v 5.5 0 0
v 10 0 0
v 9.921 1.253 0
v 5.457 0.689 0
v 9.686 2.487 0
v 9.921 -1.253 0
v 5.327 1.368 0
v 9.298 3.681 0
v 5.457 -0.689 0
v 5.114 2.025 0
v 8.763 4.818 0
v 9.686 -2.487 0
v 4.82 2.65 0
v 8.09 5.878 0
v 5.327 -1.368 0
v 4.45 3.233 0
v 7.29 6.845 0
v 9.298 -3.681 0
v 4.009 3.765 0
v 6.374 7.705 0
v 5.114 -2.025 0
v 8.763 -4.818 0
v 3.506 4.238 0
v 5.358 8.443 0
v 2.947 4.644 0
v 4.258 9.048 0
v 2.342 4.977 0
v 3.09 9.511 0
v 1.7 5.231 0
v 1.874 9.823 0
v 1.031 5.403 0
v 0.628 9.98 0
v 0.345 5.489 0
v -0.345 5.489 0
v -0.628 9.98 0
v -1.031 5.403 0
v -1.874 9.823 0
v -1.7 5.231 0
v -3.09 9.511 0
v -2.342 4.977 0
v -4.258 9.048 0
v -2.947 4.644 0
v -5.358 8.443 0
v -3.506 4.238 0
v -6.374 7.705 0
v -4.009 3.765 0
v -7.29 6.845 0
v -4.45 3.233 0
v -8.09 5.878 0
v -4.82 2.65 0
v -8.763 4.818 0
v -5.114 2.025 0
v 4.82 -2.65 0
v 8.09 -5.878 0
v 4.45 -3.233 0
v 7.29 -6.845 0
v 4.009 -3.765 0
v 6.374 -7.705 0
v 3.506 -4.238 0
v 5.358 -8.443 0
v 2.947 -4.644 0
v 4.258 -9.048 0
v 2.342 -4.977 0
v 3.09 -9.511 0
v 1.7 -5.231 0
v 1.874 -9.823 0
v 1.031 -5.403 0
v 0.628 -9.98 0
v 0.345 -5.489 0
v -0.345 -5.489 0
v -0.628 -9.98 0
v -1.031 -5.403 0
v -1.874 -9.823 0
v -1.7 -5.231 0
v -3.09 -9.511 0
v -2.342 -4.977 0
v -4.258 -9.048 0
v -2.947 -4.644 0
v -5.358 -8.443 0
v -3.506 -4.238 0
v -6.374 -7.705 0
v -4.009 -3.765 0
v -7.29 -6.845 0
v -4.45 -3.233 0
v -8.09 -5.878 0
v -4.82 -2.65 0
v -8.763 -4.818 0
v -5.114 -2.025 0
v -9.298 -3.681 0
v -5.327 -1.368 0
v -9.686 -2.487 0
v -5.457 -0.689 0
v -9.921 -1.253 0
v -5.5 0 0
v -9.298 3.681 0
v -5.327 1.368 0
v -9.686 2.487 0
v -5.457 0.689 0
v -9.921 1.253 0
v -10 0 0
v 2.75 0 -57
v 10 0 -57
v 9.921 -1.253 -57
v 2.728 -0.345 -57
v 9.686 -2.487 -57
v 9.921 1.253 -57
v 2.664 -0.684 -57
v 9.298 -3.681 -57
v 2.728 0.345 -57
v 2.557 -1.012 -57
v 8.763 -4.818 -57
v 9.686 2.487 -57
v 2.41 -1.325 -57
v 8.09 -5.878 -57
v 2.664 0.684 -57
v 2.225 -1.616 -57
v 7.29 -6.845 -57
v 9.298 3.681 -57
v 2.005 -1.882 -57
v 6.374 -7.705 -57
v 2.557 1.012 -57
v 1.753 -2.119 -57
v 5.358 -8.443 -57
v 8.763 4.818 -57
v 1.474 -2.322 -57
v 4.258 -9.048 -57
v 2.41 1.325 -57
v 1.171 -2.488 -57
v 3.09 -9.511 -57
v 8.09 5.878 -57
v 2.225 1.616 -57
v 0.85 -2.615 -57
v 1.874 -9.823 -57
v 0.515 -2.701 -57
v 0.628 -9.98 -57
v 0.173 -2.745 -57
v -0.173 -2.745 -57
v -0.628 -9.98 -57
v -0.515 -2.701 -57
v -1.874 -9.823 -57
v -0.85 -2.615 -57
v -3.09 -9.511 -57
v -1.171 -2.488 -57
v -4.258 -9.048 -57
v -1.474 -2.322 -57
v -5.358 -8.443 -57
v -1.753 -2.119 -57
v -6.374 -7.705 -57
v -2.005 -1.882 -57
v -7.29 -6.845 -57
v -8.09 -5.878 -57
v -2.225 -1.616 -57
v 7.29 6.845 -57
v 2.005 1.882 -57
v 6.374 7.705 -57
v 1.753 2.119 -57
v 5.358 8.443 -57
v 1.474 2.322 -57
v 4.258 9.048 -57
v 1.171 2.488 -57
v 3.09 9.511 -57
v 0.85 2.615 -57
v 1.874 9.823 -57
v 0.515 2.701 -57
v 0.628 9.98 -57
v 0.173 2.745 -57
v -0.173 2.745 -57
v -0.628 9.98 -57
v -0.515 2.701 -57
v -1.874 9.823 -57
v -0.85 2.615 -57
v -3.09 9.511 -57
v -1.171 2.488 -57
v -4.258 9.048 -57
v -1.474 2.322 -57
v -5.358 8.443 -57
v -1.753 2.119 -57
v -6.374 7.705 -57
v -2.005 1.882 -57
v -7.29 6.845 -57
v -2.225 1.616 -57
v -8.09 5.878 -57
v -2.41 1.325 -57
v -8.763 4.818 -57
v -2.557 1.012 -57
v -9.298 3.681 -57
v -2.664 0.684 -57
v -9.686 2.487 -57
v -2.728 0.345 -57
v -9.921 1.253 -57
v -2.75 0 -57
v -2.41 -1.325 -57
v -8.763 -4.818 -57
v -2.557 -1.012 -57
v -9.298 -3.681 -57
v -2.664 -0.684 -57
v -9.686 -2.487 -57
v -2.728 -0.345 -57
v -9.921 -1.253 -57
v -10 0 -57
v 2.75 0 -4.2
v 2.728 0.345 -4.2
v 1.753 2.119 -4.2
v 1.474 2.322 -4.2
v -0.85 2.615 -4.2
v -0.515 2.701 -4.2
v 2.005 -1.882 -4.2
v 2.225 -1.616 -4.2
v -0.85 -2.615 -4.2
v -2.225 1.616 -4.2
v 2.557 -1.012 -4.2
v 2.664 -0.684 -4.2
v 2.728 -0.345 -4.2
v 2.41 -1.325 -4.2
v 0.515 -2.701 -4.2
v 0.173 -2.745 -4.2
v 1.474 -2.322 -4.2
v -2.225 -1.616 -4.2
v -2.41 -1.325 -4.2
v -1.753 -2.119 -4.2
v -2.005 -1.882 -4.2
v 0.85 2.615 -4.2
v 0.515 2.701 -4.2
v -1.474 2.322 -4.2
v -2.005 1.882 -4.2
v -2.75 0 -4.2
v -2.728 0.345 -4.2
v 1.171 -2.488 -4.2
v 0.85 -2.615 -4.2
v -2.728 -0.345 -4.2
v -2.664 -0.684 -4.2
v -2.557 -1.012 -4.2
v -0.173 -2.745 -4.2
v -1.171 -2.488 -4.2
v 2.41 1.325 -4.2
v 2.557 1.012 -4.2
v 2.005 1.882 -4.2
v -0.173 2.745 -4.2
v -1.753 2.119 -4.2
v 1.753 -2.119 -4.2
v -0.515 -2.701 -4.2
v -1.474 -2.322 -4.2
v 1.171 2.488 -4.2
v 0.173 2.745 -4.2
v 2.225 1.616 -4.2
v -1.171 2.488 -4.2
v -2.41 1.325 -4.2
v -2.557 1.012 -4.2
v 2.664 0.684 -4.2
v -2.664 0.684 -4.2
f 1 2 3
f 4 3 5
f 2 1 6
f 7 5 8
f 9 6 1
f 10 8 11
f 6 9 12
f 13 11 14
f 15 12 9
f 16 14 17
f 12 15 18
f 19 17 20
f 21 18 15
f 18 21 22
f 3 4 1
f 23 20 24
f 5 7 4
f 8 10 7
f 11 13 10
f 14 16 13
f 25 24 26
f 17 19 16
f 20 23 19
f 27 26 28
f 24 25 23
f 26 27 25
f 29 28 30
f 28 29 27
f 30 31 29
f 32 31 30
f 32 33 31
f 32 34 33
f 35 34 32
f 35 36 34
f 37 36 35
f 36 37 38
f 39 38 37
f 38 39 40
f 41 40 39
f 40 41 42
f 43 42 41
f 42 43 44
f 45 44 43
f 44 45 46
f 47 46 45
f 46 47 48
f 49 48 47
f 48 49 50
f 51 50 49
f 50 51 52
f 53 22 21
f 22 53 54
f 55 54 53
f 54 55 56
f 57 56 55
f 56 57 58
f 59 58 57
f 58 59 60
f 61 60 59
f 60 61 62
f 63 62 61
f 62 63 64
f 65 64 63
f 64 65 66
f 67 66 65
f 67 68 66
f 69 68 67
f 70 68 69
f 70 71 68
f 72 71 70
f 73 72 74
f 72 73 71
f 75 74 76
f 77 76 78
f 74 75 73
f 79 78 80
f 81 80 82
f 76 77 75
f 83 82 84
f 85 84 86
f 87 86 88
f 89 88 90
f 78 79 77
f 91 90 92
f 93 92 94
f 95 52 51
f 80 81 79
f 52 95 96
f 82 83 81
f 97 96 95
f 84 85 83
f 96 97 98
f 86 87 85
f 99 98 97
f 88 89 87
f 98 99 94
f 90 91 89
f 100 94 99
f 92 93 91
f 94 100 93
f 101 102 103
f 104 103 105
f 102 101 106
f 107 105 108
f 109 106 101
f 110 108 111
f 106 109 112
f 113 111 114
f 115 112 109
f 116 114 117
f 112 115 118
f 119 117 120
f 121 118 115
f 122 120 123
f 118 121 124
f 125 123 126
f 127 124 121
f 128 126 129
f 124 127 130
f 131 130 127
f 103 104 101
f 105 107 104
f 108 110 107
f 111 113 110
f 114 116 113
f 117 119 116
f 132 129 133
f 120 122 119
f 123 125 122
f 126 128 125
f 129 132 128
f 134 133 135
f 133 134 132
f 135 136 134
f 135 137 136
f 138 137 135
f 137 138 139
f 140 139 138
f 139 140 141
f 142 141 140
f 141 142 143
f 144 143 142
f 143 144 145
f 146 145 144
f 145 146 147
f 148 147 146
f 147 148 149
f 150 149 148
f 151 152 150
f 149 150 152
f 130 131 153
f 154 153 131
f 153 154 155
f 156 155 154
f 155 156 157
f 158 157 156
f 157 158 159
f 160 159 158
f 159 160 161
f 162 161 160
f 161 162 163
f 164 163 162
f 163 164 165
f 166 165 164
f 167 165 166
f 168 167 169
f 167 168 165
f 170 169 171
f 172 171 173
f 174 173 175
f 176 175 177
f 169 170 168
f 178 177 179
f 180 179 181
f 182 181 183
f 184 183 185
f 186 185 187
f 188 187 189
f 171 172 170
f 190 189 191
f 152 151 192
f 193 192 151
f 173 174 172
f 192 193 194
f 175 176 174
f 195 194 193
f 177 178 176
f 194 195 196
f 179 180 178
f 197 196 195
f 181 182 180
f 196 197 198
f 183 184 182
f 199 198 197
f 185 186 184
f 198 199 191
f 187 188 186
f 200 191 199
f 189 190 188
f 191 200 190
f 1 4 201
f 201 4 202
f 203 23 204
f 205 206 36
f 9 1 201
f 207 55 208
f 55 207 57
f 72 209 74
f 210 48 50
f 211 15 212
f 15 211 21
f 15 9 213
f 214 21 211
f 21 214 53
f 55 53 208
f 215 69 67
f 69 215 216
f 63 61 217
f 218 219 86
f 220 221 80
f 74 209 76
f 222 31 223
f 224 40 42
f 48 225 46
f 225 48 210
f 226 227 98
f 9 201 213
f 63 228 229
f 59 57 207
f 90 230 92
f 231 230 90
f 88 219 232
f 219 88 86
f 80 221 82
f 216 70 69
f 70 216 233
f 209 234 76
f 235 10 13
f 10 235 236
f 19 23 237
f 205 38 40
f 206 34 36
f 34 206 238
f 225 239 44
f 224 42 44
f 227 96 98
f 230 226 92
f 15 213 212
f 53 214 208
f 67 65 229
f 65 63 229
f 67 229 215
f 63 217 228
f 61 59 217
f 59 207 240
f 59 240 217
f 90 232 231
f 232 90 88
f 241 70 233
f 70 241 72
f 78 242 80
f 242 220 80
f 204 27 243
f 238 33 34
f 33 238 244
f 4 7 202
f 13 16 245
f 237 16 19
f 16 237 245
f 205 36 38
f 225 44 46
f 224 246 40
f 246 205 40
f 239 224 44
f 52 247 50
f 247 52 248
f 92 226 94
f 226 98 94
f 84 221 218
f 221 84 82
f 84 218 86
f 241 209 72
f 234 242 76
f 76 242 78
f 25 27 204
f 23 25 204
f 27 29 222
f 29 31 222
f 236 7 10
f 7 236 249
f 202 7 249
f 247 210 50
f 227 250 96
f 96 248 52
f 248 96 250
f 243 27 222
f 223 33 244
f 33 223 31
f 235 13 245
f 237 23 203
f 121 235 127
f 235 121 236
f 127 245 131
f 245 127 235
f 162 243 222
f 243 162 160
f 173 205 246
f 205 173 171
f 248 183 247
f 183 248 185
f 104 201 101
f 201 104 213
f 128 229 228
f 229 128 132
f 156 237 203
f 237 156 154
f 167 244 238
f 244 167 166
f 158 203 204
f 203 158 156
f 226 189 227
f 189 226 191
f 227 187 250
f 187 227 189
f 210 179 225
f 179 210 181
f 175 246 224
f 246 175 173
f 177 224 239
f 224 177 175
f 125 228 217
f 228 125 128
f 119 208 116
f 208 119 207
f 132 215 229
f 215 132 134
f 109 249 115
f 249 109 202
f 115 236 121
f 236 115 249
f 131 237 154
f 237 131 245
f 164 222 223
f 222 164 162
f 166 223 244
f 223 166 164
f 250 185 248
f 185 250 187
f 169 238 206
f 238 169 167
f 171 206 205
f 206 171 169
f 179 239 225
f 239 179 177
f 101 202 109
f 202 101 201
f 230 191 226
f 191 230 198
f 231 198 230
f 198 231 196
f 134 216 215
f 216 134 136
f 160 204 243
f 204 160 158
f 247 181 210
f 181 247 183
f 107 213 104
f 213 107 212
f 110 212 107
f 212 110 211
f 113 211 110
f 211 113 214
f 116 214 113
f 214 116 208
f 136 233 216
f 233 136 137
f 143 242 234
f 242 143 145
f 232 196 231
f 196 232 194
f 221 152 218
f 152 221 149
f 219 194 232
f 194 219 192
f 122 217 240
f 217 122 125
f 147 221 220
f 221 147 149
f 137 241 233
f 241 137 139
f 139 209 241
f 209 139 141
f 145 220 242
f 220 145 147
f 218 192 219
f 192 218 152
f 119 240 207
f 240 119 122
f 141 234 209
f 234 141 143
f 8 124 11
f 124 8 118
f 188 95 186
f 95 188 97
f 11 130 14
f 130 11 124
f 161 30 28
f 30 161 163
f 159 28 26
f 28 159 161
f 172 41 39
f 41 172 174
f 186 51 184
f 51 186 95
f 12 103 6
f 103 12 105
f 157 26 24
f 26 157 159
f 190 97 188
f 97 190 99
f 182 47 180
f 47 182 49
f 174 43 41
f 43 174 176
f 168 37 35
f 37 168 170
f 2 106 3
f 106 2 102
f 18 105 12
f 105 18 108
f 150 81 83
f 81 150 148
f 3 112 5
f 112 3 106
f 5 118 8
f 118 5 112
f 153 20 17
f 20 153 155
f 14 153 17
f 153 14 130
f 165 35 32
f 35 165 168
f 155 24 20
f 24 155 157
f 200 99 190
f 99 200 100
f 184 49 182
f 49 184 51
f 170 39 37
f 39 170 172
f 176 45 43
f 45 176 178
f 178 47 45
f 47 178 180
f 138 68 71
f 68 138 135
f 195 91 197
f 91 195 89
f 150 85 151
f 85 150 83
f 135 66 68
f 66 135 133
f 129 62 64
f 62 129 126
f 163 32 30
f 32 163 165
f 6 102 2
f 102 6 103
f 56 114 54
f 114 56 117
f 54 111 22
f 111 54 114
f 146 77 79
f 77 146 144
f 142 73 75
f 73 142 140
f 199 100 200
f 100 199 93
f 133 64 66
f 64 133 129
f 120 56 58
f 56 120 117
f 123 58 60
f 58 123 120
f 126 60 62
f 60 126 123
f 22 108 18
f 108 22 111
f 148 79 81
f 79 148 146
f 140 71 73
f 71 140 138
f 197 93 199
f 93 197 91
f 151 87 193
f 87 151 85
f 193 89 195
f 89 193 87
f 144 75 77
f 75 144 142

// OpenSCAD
$fn = 50;


difference() {
	union() {
		translate(v = [0, 0, -57.0000000000]) {
			cylinder(h = 57, r = 10.0000000000);
		}
		cylinder(h = 0, r = 16.0000000000);
	}
	union() {
		translate(v = [0, 0, 0]) {
			rotate(a = [0, 0, 0]) {
				difference() {
					union() {
						#translate(v = [0, 0, -57.0000000000]) {
							cylinder(h = 57, r = 2.2500000000);
						}
						#translate(v = [0, 0, -4.2000000000]) {
							cylinder(h = 4.2000000000, r = 10.0000000000, r1 = 2.7500000000, r2 = 5.5000000000);
						}
						#translate(v = [0, 0, -57.0000000000]) {
							cylinder(h = 57, r = 2.7500000000);
						}
						#translate(v = [0, 0, -57.0000000000]) {
							cylinder(h = 57, r = 2.2500000000);
						}
					}
					union();
				}
			}
		}
	}
}
